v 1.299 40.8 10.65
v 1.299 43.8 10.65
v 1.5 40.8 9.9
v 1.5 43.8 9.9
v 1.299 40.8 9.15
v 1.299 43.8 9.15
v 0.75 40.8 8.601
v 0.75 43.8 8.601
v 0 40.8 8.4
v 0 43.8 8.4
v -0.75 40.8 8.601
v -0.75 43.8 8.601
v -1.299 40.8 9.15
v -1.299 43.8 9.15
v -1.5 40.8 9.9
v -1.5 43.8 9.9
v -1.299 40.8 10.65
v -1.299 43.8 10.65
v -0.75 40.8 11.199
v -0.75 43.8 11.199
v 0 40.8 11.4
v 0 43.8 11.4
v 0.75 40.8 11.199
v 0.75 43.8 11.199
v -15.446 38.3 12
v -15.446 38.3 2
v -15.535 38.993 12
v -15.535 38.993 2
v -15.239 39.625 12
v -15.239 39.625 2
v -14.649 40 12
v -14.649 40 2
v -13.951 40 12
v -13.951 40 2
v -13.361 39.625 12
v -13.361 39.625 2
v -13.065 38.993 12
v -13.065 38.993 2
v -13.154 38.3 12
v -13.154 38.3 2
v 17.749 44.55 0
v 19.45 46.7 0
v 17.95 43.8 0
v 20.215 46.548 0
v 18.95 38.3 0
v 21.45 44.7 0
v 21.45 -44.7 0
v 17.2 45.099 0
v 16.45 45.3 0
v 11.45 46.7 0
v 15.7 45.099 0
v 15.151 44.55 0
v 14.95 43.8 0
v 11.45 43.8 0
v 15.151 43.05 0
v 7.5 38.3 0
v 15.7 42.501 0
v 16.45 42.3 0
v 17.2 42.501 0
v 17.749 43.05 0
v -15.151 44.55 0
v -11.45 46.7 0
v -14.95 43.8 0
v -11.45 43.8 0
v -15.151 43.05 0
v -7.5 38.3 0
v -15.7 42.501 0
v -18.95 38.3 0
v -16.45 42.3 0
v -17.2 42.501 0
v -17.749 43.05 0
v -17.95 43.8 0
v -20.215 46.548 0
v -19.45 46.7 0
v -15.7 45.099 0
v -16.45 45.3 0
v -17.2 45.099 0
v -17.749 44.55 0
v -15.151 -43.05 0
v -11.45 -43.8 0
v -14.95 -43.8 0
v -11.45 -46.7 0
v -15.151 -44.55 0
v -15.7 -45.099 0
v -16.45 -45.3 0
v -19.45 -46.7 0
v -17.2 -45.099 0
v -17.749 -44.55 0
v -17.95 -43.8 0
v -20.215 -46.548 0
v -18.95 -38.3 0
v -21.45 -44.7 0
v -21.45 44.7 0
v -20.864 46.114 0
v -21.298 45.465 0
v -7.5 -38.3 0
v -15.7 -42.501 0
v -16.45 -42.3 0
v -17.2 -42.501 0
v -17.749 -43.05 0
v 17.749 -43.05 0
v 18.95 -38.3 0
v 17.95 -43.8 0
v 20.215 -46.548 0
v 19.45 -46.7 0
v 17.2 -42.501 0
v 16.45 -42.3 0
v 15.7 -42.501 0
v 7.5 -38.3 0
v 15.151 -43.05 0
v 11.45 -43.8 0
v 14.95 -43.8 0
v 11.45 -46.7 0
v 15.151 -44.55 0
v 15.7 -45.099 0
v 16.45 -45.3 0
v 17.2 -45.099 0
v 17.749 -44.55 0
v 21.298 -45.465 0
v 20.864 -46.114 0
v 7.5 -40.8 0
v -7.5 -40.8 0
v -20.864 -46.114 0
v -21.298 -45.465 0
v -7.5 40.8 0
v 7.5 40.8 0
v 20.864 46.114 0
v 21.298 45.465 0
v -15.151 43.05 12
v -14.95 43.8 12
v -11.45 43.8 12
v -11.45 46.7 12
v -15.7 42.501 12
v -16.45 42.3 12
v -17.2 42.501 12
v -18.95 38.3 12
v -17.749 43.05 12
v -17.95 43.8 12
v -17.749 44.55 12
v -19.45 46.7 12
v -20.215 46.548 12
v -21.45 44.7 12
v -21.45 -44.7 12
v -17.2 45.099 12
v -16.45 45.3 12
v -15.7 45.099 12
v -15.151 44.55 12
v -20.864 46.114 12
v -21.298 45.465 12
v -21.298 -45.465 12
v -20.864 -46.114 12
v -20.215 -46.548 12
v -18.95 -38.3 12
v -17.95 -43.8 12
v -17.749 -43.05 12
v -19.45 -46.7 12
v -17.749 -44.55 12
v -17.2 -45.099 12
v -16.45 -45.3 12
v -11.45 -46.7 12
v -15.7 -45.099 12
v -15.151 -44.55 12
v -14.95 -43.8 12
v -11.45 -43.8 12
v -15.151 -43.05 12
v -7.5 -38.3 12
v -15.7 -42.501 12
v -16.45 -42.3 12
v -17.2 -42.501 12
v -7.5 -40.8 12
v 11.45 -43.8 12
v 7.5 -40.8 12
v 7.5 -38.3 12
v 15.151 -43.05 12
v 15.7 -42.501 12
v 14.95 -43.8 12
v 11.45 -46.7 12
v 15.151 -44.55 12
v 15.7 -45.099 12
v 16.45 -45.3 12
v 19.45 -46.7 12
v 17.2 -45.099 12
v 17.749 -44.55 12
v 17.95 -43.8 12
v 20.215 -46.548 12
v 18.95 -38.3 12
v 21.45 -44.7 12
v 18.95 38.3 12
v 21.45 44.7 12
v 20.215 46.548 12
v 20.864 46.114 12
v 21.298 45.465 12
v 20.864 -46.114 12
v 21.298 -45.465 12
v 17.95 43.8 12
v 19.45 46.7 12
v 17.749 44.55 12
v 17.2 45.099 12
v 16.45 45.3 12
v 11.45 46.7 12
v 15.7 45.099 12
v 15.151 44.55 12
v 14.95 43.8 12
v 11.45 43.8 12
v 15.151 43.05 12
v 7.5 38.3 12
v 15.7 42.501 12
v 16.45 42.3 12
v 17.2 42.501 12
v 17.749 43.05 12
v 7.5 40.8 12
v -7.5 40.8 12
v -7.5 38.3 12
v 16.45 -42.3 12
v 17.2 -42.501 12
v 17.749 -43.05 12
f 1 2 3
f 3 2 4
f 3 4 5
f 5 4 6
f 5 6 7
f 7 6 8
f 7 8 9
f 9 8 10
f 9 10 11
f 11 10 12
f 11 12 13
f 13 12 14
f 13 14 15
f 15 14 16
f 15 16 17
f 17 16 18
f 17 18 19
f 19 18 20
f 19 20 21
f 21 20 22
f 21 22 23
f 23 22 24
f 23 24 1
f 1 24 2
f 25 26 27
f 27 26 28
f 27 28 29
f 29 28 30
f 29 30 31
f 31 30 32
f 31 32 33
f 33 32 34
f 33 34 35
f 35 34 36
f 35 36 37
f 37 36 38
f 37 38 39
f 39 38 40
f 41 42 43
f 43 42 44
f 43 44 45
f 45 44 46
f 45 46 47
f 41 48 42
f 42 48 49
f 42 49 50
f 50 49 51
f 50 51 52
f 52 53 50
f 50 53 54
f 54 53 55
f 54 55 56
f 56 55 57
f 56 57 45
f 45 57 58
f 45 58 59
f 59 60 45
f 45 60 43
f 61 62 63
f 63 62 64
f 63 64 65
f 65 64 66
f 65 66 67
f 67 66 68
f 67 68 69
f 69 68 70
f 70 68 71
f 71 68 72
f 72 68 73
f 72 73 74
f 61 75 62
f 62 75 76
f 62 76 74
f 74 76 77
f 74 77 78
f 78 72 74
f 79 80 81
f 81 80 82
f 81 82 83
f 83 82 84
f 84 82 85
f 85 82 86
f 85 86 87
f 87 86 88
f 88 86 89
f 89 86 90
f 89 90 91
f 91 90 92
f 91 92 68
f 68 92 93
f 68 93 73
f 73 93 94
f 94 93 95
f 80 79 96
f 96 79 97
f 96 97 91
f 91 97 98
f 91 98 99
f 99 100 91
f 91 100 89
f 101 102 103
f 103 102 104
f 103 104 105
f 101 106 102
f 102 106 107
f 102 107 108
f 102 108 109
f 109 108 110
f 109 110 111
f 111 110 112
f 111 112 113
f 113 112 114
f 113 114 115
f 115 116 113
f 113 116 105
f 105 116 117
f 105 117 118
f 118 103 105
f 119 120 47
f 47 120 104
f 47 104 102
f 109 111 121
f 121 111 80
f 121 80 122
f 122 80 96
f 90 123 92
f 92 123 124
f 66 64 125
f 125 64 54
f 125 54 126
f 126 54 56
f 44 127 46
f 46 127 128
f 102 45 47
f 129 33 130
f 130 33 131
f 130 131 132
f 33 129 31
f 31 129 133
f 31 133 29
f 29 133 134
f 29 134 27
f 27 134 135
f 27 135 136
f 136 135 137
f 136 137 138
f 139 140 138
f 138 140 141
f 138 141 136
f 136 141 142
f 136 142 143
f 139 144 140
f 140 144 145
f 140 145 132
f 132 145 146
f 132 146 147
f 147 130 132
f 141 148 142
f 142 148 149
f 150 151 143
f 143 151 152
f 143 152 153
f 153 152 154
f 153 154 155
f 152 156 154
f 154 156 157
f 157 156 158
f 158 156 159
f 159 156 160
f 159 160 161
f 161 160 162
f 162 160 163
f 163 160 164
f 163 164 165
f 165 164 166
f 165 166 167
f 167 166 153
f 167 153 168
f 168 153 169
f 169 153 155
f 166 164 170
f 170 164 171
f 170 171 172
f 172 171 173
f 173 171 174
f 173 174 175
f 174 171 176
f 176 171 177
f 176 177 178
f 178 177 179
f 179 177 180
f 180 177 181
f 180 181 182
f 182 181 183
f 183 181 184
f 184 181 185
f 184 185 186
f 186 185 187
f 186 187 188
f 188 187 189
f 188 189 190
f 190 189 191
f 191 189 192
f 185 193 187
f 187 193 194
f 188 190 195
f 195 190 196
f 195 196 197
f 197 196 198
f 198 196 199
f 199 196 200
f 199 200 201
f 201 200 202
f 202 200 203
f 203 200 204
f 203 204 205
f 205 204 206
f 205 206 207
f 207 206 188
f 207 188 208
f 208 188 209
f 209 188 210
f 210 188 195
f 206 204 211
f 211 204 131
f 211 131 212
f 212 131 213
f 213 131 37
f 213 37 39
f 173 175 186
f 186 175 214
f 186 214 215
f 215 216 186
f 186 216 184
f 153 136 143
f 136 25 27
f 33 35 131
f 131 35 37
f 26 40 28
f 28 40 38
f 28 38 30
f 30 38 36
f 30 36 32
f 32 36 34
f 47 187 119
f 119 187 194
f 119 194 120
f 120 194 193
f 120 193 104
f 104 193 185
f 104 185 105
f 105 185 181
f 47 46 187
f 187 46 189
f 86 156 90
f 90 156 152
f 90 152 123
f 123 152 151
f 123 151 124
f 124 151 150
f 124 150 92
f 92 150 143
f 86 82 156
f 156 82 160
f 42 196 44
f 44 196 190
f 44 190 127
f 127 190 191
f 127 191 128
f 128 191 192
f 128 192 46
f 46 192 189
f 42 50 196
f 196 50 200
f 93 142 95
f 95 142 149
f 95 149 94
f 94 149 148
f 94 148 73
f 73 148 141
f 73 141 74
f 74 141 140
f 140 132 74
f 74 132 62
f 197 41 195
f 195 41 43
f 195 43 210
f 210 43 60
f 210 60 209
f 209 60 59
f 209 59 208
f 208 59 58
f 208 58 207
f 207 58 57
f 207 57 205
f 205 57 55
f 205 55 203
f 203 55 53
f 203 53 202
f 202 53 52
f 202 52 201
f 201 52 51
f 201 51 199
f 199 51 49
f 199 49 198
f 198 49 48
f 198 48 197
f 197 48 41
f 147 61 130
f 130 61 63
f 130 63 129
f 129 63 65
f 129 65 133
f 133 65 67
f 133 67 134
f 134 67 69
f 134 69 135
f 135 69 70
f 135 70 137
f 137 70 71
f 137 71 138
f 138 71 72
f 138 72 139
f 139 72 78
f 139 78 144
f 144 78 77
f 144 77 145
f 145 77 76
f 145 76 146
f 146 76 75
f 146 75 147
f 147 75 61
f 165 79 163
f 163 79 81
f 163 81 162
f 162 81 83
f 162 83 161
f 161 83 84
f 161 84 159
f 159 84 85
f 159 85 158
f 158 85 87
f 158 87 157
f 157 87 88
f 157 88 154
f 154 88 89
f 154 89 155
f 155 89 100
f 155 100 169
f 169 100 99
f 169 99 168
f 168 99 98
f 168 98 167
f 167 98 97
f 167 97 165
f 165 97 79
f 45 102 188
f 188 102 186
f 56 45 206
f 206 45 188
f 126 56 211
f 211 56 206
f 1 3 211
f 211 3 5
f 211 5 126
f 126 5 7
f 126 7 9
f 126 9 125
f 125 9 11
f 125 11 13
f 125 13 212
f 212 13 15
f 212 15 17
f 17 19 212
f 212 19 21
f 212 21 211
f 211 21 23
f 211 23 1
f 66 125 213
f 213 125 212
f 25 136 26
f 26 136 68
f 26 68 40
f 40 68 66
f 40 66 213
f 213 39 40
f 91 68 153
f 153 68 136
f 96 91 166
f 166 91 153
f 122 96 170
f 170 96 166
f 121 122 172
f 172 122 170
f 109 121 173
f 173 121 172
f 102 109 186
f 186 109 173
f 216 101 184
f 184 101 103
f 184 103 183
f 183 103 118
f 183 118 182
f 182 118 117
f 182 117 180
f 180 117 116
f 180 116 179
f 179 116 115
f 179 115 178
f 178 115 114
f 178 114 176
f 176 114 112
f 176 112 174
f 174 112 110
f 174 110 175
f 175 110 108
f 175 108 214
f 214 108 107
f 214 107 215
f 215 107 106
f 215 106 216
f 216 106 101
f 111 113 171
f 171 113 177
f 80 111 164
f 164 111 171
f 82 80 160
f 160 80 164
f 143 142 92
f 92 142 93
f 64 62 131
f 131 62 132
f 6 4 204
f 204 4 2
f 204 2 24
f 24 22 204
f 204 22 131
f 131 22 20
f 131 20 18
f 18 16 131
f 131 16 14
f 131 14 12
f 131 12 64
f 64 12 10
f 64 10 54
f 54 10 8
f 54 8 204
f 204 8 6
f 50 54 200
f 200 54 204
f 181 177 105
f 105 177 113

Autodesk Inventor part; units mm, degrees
ref_plane "YZ Plane" through (0, 0, 0) normal (1, 0, 0) x (0, 1, 0)
ref_plane "XZ Plane" through (0, 0, 0) normal (0, 1, 0) x (-1, 0, 0)
ref_plane "XY Plane" through (0, 0, 0) normal (0, 0, 1) x (1, 0, 0)
sketch "Эскиз1" plane through (0, 0, 0) normal (0, 0, 1) x (1, 0, 0)
  line L0 (-18.25, -37.6) -> (18.25, -37.6)
  line L1 (18.25, -37.6) -> (18.25, 37.6)
  line L2 (18.25, 37.6) -> (-18.25, 37.6)
  line L3 (-18.25, 37.6) -> (-18.25, -37.6)
  line L4 (-18.25, 0) -> (18.25, 0) construction
  line L5 (0, 37.6) -> (0, -37.6) construction
  line L6 (-18.45, -37.8) -> (18.45, -37.8)
  line L7 (18.45, -37.8) -> (18.45, 37.8)
  line L8 (18.45, 37.8) -> (-18.45, 37.8)
  line L9 (-18.45, 37.8) -> (-18.45, -37.8)
  line L10 (-7.5, -37.8) -> (7.5, -37.8)
  line L11 (7.5, -37.8) -> (7.5, -40.8)
  line L12 (7.5, -40.8) -> (-7.5, -40.8)
  line L13 (-7.5, -40.8) -> (-7.5, -37.8)
  line L14 (-18.45, -37.8) -> (-18.45, -43.8)
  line L15 (-18.45, -43.8) -> (18.45, -43.8)
  line L16 (18.45, -43.8) -> (18.45, -37.8)
  line L17 (-18.45, 43.8) -> (18.45, 43.8)
  line L18 (-18.45, 37.8) -> (-18.45, 43.8)
  line L19 (18.45, 43.8) -> (18.45, 37.8)
  line L20 (-18.45, -43.8) -> (-21.45, -43.8)
  line L21 (-21.45, -43.8) -> (-21.45, 43.8)
  line L22 (-21.45, 43.8) -> (-18.45, 43.8)
  line L23 (-18.45, 43.8) -> (-18.45, -43.8)
  line L24 (21.45, 43.8) -> (18.45, 43.8)
  line L25 (18.45, 37.8) -> (18.45, 43.8)
  line L26 (18.45, 43.8) -> (18.45, -43.8)
  line L27 (21.45, -43.8) -> (21.45, 43.8)
  line L28 (-7.5, 40.8) -> (-7.5, 37.8)
  line L29 (7.5, 40.8) -> (-7.5, 40.8)
  line L30 (7.5, 37.8) -> (7.5, 40.8)
  line L31 (-21.45, -43.8) -> (-11.45, -43.8)
  line L32 (18.45, -43.8) -> (21.45, -43.8)
  line L33 (21.45, -43.8) -> (11.45, -43.8)
  line L34 (16.45, 46.7) -> (21.45, 46.7)
  line L35 (16.45, 46.7) -> (11.45, 46.7)
  line L36 (11.45, 46.7) -> (11.45, 43.8)
  line L37 (21.45, 46.7) -> (21.45, 43.8)
  line L38 (11.45, 43.8) -> (16.45, 43.8)
  line L39 (-11.45, 46.7) -> (-11.45, 43.8)
  line L40 (-16.45, 46.7) -> (-11.45, 46.7)
  line L41 (-16.45, 46.7) -> (-21.45, 46.7)
  line L42 (-21.45, 46.7) -> (-21.45, 43.8)
  line L43 (-16.45, -46.7) -> (-21.45, -46.7)
  line L44 (-21.45, -46.7) -> (-21.45, -43.8)
  line L45 (-16.45, -46.7) -> (-11.45, -46.7)
  line L46 (-11.45, -46.7) -> (-11.45, -43.8)
  line L47 (11.45, -46.7) -> (11.45, -43.8)
  line L48 (16.45, -46.7) -> (11.45, -46.7)
  line L49 (16.45, -46.7) -> (21.45, -46.7)
  line L50 (21.45, -46.7) -> (21.45, -43.8)
  circle A0 centre (16.45, -43.8) radius 1.5
  circle A1 centre (-16.45, -43.8) radius 1.5
  circle A2 centre (16.45, 43.8) radius 1.5
  circle A3 centre (-16.45, 43.8) radius 1.5
  line L51 (0, 0) -> (-14.3, 0) construction
  line L52 (-14.3, 0) -> (-14.3, 38.8) construction
  line L53 (-14.3, 38.8) -> (0, 38.8) construction
  line L54 (0, 38.8) -> (0, 0) construction
  circle A4 centre (-14.3, 38.8) radius 1.25
  line L55 (18.45, -37.8) -> (18.95, -37.8)
  line L56 (18.95, -37.8) -> (18.95, -38.3)
  line L57 (18.95, -38.3) -> (18.45, -38.3)
  line L58 (18.45, -38.3) -> (18.45, -37.8)
  line L59 (18.95, -38.3) -> (-18.95, -38.3)
  line L60 (-18.95, -38.3) -> (-18.95, 38.3)
  line L61 (-18.95, 38.3) -> (18.95, 38.3)
  line L62 (18.95, 38.3) -> (18.95, -38.3)
  point P0 (-1.9914, -32.8601)
  point P1 (0, -37.8)
  point P2 (-15.05, 37.8)
  point P3 (-13.55, 37.8)
  point P4 (7.5, -38.3)
  point P5 (-7.5, -38.3)
  point P6 (-7.5, 38.3)
  point P7 (7.5, 38.3)
  dimension "d0" = 36.5
  dimension "d1" = 75.2
  dimension "d2" = 36.9
  dimension "d3" = 75.6
  dimension "d4" = 15
  dimension "d5" = 3
  dimension "d6" = 6
  dimension "d7" = 3
  dimension "d8" = 5
  dimension "d10" = 3
  dimension "d11" = 3
  dimension "d12" = 3
  dimension "d13" = 3
  dimension "d19" = 14.3
  dimension "d20" = 38.8
  dimension "d21" = 2.5
  dimension "d28" = 0.5
  dimension "d29" = 0.5
  dimension "d30" = 37.9
  dimension "d31" = 76.6
extrude "Выдавливание1" add sketch "Эскиз1" along normal blind 12 contours L61 L18 L17 A3 A2 L19 L30 L29 L28 A4 | A4 L61 | L61 L60 L59 L14 L20 L21 L22 L18 | L59 L13 L12 L11 L16 L15 A0 A1 L14 | L22 L42 L41 L40 L39 L17 A3 | L15 A1 L46 L45 L43 L44 L20 | L19 L24 L27 L32 L16 L57 L56 L62 L61 | L17 A2 L36 L35 L34 L37 L24 | L32 L50 L49 L48 L47 L15 A0
fillet "Сопряжение1" radius 2 4 edges at (-21.45, 46.7, 6) (21.45, 46.7, 6) (-21.45, -46.7, 6) (21.45, -46.7, 6)
extrude "Выдавливание3" cut sketch "Эскиз1" against normal blind 10 from surface at 12 contours A4 L61 L8 | A4 L61
sketch "Эскиз2" plane through (-11.45, 43.8, 0) normal (0, 1, 0) x (1, 0, 0)
  line L0 (32.9, 0) -> (32.9, -12) construction
  line L1 (32.9, -6) -> (-10, -6) construction
  line L2 (-10, -12) -> (-10, 0) construction
  line L3 (3.95, -12) -> (18.95, -12) construction
  line L4 (11.45, -12) -> (11.45, 0) construction
  line L5 (32.9, -12) -> (30.9, -12) construction
  line L6 (32.9, -12) -> (11.45, -12) construction
  line L7 (11.45, -12) -> (11.45, -9.9) construction
  line L8 (11.45, -9.9) -> (32.9, -9.9) construction
  line L9 (32.9, -9.9) -> (32.9, -12) construction
  circle A0 centre (11.45, -9.9) radius 1.5
  dimension "d24" = 2.1
  dimension "d25" = 3
extrude "Выдавливание4" cut sketch "Эскиз2" against normal blind 3
properties part number "fast_akkum2"
